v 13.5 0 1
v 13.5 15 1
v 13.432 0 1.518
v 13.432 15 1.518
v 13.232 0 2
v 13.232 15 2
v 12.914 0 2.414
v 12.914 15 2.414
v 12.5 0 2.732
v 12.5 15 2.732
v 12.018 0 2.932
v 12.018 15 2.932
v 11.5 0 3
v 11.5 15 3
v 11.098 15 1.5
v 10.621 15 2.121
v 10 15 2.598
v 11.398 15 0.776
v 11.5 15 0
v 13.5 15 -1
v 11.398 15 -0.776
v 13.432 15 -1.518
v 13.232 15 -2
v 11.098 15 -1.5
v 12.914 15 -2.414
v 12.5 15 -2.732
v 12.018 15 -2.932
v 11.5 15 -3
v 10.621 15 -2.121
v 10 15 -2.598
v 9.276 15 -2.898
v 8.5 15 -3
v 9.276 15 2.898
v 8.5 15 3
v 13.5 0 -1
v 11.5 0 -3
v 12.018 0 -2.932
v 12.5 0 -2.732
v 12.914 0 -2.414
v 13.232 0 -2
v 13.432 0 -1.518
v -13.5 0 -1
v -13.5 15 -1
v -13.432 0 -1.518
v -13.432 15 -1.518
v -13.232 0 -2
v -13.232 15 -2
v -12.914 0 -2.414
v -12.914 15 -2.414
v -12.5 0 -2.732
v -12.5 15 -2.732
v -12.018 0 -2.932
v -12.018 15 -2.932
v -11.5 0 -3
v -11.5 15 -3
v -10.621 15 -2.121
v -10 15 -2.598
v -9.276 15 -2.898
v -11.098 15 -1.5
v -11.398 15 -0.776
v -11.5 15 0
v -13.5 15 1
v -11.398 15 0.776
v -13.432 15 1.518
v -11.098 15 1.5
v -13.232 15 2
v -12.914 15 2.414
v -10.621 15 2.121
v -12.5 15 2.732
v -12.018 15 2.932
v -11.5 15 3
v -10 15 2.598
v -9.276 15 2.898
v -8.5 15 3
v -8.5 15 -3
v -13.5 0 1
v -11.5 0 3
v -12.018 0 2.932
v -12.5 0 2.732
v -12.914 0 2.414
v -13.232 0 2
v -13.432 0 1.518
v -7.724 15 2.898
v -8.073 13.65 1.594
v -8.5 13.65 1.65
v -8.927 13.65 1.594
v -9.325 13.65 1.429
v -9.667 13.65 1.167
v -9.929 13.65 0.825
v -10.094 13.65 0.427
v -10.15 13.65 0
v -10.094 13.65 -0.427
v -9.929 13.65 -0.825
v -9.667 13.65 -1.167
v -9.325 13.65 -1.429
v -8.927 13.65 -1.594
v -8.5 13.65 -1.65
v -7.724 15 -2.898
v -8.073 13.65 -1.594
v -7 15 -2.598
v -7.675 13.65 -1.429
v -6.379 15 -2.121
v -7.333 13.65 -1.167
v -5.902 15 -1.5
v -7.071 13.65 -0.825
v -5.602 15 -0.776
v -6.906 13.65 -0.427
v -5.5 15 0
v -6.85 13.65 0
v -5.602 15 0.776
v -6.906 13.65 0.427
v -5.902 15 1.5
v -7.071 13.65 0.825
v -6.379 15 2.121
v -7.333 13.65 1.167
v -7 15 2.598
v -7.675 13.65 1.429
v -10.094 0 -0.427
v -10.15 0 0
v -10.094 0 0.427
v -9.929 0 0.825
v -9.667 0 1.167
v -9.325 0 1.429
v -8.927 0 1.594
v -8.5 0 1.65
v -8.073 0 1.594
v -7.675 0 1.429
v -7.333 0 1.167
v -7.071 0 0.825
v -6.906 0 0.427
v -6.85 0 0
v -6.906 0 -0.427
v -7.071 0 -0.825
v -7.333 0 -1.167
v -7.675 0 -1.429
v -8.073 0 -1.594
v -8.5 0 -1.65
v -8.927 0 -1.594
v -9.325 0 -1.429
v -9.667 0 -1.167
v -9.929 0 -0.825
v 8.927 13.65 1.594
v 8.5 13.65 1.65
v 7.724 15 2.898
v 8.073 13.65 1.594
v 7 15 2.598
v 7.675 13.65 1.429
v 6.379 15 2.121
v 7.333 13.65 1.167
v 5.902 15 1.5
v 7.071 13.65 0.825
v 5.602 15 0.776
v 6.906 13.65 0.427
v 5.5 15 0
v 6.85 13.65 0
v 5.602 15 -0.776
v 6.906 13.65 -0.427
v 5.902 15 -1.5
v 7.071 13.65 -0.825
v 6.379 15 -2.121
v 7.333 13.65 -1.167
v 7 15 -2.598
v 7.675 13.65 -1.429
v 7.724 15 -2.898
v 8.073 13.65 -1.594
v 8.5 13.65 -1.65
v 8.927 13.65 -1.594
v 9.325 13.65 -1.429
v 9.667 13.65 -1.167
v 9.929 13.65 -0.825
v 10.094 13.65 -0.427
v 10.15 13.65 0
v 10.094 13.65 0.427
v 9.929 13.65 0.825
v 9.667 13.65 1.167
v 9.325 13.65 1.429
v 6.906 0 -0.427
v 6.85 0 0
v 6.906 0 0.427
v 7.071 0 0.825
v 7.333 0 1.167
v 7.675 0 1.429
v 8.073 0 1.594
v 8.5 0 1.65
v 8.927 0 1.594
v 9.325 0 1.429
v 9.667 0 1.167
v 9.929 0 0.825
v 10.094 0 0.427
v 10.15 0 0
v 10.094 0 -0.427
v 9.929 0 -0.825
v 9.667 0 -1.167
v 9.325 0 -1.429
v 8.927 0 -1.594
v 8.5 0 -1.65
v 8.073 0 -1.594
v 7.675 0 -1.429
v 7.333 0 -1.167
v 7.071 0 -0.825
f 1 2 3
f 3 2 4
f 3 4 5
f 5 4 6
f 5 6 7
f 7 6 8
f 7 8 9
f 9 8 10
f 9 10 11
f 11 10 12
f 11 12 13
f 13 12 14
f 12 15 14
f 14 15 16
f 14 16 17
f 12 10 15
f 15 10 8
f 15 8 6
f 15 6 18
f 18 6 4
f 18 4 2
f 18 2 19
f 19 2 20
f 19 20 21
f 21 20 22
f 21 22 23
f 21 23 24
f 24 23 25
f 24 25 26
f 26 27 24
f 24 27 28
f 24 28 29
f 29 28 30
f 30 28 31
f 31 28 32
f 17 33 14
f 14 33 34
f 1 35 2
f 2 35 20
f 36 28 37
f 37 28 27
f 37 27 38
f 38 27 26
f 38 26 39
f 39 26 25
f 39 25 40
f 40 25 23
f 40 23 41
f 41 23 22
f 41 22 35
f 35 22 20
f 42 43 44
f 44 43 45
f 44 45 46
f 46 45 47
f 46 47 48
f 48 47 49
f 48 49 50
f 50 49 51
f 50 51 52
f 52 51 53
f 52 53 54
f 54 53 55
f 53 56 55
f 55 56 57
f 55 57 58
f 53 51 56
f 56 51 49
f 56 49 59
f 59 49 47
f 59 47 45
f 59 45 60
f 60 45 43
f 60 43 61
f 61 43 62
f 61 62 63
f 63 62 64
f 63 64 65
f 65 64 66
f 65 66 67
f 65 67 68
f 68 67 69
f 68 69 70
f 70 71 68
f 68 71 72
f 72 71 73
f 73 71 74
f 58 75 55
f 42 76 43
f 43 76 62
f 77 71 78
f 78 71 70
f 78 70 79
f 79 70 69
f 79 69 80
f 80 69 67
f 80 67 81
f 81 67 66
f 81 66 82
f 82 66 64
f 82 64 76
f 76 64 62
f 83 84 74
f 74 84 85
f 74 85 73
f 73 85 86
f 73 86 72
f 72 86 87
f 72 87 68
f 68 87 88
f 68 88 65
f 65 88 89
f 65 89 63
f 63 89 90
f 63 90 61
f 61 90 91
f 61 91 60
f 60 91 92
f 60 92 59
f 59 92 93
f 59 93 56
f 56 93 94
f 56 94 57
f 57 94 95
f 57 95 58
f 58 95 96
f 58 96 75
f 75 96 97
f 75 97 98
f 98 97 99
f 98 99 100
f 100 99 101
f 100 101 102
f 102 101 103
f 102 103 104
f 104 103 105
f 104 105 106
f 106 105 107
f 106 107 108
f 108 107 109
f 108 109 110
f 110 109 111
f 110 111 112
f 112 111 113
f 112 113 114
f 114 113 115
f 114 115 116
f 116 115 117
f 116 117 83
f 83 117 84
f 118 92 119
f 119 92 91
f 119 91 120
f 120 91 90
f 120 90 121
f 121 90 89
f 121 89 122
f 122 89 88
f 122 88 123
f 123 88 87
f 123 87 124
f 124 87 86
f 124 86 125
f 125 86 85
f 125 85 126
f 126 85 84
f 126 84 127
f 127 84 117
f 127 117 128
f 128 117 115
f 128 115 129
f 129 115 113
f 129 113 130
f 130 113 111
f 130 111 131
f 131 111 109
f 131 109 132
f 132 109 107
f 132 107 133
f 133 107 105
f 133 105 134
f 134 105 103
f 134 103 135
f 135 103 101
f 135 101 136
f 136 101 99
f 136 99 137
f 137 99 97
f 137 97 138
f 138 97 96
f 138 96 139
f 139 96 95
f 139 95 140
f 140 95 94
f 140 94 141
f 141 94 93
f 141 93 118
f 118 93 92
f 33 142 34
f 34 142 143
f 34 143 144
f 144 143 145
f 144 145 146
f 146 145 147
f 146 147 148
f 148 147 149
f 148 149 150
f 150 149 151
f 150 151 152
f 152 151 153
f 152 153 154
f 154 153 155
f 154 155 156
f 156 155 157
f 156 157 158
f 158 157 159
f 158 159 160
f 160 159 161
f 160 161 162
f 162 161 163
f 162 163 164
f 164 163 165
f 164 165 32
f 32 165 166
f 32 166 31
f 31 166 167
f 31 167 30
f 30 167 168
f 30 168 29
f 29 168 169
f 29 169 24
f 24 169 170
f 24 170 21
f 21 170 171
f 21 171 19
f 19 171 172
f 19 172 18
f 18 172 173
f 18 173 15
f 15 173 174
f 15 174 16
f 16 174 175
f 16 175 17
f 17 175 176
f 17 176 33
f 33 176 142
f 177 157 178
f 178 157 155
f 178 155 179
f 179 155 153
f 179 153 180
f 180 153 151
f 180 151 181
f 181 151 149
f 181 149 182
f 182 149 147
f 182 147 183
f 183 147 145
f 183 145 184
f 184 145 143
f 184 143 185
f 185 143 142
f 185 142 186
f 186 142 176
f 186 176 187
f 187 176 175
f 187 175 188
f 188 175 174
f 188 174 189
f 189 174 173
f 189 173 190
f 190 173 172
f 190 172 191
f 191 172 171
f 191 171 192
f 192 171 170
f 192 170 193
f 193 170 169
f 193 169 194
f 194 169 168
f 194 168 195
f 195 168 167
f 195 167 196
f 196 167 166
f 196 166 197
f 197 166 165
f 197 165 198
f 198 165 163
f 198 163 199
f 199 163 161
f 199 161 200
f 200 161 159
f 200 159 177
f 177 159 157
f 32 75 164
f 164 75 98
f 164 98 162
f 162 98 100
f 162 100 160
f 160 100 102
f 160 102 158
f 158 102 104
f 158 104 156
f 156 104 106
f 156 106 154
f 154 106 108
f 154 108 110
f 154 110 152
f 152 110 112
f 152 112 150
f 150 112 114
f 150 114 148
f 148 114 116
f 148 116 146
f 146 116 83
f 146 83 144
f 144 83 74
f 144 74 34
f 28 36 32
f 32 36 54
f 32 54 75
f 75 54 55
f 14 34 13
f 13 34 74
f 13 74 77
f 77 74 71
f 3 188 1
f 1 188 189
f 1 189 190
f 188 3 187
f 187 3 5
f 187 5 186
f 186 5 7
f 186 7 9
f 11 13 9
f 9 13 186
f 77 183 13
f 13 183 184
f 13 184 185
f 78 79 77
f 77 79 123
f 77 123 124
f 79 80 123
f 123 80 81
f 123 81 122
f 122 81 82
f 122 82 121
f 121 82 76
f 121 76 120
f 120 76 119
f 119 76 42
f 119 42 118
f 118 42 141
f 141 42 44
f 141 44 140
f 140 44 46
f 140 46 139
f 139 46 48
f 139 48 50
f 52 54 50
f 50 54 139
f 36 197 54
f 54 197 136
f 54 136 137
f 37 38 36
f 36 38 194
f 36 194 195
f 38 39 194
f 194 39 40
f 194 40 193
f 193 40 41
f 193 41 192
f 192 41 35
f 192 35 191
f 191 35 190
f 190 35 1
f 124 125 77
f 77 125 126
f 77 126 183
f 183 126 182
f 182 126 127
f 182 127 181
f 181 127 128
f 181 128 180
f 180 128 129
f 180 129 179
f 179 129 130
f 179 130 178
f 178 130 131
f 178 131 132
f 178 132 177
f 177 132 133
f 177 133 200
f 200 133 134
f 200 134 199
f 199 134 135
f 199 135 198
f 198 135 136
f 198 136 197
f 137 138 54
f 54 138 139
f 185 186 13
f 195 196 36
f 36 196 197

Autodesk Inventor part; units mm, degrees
ref_plane "YZ Plane" through (0, 0, 0) normal (1, 0, 0) x (0, 1, 0)
ref_plane "XZ Plane" through (0, 0, 0) normal (0, 1, 0) x (-1, 0, 0)
ref_plane "XY Plane" through (0, 0, 0) normal (0, 0, 1) x (1, 0, 0)
sketch "Sketch1" plane through (0, 0, 0) normal (0, 1, 0) x (-1, 0, 0)
  line L0 (-13.5, 3) -> (13.5, 3)
  line L1 (13.5, 3) -> (13.5, -3)
  line L2 (13.5, -3) -> (-13.5, -3)
  line L3 (-13.5, -3) -> (-13.5, 3)
  line L4 (-13.5, 3) -> (13.5, -3) construction
  line L5 (13.5, 3) -> (-13.5, -3) construction
  point P0 (0, 0)
  dimension "d0" = 27
  dimension "d1" = 6
extrude "Extrusion1" add sketch "Sketch1" along normal blind 15
sketch "Sketch2" plane through (0, 15, 0) normal (0, 1, 0) x (1, 0, 0)
  line L0 (-8.5, 0) -> (8.5, 0)
  point P0 (0, 0)
  point P1 (0, 0)
  dimension "d4" = 17
hole "Hole1" at (-8.5, 15, 0) at (8.5, 15, 0) direction (0, -1, 0) diameter 3.3 end through all countersink diameter 6 countersink angle 90
fillet "Fillet1" radius 2 4 edges at (-13.5, 7.5, 3) (-13.5, 7.5, -3) (13.5, 7.5, -3) (13.5, 7.5, 3)
properties part number "FixLock"
